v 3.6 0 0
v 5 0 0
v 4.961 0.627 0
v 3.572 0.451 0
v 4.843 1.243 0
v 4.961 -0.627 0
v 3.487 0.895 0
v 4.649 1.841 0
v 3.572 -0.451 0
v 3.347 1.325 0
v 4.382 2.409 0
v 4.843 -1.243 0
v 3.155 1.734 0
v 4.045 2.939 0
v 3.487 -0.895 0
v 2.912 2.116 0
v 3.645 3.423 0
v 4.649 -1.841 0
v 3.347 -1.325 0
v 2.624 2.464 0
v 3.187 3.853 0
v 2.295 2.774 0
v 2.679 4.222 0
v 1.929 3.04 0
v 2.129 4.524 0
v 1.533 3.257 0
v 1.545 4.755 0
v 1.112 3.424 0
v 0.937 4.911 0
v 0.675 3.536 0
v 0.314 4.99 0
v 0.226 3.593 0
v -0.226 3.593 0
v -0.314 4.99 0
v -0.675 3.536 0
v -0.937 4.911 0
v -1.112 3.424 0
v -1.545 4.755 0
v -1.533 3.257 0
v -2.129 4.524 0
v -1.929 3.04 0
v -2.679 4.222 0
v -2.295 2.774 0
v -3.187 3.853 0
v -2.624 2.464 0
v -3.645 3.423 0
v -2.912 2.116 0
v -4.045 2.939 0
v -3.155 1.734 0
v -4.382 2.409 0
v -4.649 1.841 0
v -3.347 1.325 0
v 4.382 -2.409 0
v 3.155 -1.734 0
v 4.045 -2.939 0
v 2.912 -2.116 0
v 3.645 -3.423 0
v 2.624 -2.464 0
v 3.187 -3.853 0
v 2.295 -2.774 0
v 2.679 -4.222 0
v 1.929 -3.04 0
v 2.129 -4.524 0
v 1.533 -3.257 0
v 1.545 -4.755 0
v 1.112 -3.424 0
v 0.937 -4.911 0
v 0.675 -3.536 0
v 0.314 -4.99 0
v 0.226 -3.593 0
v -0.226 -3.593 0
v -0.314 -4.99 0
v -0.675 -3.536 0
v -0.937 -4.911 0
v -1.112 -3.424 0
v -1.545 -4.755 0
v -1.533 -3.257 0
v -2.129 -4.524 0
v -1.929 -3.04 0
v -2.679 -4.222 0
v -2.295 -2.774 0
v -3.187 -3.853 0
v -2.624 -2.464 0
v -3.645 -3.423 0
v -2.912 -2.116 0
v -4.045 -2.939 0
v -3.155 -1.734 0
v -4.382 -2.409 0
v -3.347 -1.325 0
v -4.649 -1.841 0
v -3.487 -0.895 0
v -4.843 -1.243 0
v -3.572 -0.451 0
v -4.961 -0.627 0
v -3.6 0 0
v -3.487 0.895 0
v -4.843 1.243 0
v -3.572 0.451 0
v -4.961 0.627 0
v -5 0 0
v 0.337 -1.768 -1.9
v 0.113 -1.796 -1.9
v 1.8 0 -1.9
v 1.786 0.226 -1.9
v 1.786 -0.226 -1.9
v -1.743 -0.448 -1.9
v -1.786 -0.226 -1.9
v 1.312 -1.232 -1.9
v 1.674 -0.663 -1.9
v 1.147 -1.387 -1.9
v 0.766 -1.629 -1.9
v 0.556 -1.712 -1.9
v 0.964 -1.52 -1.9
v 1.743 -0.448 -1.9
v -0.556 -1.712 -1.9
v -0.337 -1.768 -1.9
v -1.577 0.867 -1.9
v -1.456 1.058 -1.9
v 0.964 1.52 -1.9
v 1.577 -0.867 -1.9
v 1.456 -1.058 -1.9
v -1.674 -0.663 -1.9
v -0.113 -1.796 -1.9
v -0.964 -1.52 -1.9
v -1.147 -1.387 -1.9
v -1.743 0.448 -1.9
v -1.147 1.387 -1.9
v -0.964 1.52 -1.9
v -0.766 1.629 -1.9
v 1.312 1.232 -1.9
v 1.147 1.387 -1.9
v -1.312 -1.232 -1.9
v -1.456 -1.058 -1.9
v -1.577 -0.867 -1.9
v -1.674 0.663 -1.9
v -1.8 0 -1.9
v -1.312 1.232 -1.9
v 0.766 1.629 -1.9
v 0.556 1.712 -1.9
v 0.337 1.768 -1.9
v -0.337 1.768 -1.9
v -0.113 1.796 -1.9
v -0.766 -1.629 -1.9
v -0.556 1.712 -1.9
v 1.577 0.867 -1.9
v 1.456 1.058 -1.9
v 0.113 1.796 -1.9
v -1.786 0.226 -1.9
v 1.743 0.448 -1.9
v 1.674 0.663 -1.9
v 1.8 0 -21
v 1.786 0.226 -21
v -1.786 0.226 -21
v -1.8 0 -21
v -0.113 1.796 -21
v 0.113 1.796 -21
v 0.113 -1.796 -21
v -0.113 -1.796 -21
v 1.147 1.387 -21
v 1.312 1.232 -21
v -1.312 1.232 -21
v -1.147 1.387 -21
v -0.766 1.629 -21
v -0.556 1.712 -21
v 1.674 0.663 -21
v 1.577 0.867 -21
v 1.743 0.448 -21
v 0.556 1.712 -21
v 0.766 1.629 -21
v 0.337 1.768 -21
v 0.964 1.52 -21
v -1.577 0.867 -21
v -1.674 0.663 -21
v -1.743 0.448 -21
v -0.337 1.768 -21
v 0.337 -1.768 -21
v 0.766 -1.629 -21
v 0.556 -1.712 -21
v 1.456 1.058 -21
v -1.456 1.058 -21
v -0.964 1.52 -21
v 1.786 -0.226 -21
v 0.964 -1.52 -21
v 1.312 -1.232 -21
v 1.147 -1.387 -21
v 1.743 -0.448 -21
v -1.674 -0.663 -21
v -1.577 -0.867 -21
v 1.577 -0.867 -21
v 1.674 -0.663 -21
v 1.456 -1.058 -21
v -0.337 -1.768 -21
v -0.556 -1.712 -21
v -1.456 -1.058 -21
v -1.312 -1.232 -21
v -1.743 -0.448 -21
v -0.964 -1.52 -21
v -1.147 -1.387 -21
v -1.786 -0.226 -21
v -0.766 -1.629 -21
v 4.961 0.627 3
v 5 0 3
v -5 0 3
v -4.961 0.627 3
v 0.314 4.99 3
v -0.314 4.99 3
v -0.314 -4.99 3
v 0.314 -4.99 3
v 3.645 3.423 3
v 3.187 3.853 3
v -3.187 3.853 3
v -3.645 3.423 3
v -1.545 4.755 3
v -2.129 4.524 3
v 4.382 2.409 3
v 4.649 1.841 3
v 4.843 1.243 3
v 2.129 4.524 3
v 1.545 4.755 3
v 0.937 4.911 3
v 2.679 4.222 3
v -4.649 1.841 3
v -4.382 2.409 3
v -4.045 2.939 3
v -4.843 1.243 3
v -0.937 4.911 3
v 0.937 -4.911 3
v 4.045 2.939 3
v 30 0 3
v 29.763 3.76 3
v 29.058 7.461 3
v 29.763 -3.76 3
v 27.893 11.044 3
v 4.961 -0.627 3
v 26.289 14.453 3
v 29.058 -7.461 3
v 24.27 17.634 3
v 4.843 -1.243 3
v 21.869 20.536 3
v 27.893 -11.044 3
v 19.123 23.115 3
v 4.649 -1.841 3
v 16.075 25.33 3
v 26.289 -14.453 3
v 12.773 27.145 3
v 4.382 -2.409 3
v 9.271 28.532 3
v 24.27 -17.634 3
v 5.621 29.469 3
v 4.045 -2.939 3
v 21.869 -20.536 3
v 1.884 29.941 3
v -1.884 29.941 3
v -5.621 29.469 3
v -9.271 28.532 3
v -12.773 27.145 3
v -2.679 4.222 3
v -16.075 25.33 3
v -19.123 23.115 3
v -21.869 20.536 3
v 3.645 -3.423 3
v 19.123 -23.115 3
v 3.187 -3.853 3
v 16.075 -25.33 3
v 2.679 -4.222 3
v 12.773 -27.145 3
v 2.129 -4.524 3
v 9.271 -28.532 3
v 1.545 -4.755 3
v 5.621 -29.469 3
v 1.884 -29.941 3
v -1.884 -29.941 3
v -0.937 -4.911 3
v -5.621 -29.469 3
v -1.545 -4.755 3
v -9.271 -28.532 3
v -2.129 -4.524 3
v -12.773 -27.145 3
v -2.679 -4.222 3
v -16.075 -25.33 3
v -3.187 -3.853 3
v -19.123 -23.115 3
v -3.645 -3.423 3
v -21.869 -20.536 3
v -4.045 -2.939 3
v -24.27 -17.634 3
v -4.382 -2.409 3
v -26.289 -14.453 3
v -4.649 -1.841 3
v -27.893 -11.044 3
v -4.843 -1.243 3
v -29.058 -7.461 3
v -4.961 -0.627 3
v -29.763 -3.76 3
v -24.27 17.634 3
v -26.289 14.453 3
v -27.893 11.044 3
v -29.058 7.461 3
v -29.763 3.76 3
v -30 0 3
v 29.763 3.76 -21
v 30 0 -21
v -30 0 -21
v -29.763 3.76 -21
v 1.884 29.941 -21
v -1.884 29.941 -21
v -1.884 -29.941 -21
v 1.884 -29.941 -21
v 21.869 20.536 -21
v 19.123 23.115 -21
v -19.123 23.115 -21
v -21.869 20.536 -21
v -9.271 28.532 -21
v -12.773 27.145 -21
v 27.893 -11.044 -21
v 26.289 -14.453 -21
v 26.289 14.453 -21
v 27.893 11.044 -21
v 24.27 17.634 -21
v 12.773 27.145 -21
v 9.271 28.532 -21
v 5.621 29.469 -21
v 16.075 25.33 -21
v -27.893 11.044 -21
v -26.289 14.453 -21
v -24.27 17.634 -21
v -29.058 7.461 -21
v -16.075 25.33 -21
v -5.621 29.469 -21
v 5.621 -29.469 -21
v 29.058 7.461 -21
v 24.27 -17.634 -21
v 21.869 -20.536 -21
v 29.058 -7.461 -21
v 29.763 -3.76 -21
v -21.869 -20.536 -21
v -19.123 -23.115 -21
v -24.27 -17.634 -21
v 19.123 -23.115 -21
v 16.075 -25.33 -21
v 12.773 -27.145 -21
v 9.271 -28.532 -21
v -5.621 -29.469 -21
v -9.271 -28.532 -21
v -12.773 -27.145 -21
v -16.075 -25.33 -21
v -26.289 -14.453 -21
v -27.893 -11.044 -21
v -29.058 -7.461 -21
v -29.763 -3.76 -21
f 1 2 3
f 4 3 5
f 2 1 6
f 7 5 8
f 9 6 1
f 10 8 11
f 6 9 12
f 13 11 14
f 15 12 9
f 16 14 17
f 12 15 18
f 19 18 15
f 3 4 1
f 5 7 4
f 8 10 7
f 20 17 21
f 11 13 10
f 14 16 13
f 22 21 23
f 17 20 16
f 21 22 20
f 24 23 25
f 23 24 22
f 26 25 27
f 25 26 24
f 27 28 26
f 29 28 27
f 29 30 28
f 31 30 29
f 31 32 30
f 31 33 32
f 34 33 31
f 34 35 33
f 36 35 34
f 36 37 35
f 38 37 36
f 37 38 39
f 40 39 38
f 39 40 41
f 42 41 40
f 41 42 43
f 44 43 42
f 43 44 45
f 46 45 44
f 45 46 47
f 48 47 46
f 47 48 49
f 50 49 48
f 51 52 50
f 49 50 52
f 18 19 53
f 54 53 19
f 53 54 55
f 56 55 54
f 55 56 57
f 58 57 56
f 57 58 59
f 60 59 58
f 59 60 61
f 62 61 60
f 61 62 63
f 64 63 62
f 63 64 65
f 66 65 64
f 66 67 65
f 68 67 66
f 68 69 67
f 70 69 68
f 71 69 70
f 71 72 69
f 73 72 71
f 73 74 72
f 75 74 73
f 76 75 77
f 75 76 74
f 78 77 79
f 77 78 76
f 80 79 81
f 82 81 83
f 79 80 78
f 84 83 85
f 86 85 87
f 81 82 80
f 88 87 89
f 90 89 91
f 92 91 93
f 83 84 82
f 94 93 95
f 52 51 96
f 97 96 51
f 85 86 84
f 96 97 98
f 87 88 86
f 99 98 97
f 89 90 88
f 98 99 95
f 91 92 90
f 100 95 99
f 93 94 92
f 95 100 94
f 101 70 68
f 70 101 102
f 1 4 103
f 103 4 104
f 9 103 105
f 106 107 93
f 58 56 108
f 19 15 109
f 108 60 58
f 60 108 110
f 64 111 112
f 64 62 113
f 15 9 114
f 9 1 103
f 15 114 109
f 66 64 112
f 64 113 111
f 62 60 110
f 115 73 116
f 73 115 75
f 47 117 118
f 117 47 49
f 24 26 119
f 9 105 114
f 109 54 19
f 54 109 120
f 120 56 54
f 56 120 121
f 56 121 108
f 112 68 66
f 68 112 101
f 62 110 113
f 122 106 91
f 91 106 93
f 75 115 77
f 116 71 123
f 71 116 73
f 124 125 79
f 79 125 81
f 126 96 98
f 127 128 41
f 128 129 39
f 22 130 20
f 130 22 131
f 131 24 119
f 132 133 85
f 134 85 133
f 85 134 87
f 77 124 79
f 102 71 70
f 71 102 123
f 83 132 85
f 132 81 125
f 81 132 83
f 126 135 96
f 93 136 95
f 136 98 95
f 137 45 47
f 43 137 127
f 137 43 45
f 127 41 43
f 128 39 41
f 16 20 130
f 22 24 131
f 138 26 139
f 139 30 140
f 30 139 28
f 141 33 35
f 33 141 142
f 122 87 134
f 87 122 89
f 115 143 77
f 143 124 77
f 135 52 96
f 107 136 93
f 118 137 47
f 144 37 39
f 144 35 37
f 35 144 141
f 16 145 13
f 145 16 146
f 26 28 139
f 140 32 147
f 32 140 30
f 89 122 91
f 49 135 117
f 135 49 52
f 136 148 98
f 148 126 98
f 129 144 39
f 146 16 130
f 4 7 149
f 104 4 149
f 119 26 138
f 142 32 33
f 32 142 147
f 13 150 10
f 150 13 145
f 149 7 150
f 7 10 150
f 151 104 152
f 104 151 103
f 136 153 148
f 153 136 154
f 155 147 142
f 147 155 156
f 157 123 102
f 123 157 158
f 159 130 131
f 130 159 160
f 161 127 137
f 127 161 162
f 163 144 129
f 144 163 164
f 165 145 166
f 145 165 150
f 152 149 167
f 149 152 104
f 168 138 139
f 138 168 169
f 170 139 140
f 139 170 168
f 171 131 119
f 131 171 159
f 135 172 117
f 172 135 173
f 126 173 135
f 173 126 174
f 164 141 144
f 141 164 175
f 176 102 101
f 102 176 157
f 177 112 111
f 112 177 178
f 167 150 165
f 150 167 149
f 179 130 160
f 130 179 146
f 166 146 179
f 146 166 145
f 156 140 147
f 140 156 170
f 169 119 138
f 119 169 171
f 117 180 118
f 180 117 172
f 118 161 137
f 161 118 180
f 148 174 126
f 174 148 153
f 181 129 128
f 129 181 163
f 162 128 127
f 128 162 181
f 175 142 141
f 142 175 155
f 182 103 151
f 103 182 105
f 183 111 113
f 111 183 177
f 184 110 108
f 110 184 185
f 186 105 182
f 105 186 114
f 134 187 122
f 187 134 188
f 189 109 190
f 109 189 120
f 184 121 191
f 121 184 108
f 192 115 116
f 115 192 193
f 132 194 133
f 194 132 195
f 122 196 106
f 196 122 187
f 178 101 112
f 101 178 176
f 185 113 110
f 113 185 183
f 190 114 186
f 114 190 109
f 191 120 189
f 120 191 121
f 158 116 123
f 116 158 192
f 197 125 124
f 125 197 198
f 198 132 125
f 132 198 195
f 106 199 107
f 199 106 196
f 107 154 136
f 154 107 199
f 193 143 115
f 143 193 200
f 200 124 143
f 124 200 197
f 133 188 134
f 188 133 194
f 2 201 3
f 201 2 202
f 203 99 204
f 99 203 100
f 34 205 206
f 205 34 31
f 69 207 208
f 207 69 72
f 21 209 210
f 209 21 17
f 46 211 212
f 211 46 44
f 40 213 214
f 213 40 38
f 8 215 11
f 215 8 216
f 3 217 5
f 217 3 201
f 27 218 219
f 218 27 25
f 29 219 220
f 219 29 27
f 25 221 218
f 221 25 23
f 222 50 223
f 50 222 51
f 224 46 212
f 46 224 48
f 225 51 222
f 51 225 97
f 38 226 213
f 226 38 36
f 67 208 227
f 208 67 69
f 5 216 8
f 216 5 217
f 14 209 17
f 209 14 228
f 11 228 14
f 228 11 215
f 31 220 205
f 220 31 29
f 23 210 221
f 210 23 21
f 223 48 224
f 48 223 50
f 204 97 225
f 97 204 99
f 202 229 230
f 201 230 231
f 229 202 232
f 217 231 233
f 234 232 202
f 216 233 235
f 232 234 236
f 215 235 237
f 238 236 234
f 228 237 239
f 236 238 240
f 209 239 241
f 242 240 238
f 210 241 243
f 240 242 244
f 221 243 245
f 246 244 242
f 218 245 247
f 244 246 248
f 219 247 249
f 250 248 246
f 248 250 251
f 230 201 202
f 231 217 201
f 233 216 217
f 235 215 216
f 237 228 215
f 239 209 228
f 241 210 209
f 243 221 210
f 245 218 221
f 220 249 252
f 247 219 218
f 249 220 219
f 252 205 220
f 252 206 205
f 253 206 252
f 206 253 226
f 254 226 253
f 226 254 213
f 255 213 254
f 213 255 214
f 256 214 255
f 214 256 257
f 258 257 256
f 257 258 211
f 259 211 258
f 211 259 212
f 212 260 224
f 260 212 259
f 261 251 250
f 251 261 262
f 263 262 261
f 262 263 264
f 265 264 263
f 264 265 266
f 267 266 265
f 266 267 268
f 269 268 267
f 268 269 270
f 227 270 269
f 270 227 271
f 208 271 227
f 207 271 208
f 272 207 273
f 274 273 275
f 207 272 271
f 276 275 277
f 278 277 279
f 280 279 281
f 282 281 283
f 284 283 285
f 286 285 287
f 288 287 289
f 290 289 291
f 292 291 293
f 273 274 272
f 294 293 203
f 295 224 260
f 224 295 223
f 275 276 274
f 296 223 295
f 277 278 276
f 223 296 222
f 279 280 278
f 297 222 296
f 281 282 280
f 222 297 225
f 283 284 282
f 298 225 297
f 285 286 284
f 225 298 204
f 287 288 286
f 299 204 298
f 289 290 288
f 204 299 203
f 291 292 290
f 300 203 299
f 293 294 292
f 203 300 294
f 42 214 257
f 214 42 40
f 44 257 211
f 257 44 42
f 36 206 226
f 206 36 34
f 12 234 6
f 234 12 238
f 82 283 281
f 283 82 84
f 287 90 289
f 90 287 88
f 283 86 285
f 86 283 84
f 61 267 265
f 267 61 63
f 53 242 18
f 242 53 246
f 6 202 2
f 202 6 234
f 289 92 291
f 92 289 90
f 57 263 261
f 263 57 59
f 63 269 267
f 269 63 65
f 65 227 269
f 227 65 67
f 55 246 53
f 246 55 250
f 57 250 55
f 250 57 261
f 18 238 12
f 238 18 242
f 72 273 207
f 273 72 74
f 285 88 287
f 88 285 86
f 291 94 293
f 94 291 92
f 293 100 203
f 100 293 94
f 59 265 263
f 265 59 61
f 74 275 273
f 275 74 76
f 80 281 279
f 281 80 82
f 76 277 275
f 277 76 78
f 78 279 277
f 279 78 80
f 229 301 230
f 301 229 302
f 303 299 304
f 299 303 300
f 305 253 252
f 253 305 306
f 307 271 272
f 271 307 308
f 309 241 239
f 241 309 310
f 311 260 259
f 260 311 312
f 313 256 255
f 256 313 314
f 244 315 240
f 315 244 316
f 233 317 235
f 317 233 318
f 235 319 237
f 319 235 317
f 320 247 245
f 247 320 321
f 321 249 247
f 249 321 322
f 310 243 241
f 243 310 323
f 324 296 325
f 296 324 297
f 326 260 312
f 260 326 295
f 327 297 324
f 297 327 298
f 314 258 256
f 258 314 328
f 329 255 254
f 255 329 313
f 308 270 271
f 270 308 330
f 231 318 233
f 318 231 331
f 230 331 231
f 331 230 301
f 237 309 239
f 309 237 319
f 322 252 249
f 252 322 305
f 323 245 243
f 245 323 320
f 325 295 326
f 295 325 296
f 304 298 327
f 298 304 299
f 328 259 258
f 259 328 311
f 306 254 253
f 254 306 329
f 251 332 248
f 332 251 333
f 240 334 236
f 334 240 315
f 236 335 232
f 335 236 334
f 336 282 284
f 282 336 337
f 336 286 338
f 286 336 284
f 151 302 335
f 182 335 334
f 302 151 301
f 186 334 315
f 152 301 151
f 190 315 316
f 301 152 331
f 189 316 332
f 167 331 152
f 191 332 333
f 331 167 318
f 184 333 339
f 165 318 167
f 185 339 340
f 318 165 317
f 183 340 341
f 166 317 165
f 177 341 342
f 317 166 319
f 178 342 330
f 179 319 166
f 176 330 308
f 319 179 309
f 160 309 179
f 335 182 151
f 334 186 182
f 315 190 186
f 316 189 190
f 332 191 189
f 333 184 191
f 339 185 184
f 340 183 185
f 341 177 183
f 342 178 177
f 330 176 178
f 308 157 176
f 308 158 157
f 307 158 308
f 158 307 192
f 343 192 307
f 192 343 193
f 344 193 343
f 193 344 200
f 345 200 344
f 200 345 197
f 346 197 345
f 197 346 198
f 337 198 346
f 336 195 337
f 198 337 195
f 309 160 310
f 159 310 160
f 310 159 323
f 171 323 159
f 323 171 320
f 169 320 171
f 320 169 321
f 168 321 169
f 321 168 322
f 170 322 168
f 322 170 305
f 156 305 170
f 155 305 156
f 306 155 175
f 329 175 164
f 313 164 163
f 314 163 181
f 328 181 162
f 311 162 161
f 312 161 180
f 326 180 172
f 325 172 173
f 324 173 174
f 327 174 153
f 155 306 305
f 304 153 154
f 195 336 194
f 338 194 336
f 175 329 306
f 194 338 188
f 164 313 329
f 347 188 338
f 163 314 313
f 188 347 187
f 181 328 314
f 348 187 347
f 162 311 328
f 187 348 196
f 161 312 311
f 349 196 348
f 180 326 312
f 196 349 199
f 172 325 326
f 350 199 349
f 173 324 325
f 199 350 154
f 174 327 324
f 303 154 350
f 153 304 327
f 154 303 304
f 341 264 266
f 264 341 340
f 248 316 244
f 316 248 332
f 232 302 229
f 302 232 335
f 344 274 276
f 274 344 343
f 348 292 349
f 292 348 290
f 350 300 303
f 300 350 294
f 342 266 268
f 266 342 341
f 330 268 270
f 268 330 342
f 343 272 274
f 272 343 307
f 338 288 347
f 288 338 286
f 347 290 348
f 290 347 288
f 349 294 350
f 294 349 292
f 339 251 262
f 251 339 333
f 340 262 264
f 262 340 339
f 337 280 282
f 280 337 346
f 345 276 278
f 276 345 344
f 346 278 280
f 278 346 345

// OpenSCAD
$fn = 50;


difference() {
	union() {
		translate(v = [0, 0, -21.0000000000]) {
			cylinder(h = 24, r = 30.0000000000);
		}
	}
	union() {
		translate(v = [0, 0, 0]) {
			rotate(a = [0, 0, 0]) {
				difference() {
					union() {
						translate(v = [0, 0, -24.0000000000]) {
							cylinder(h = 24, r = 1.5000000000);
						}
						translate(v = [0, 0, -1.9000000000]) {
							cylinder(h = 1.9000000000, r1 = 1.8000000000, r2 = 3.6000000000);
						}
						translate(v = [0, 0, -24.0000000000]) {
							cylinder(h = 24, r = 1.8000000000);
						}
						translate(v = [0, 0, -24.0000000000]) {
							cylinder(h = 24, r = 1.5000000000);
						}
					}
					union();
				}
			}
		}
		#cylinder(h = 3, r = 5.0000000000);
	}
}
